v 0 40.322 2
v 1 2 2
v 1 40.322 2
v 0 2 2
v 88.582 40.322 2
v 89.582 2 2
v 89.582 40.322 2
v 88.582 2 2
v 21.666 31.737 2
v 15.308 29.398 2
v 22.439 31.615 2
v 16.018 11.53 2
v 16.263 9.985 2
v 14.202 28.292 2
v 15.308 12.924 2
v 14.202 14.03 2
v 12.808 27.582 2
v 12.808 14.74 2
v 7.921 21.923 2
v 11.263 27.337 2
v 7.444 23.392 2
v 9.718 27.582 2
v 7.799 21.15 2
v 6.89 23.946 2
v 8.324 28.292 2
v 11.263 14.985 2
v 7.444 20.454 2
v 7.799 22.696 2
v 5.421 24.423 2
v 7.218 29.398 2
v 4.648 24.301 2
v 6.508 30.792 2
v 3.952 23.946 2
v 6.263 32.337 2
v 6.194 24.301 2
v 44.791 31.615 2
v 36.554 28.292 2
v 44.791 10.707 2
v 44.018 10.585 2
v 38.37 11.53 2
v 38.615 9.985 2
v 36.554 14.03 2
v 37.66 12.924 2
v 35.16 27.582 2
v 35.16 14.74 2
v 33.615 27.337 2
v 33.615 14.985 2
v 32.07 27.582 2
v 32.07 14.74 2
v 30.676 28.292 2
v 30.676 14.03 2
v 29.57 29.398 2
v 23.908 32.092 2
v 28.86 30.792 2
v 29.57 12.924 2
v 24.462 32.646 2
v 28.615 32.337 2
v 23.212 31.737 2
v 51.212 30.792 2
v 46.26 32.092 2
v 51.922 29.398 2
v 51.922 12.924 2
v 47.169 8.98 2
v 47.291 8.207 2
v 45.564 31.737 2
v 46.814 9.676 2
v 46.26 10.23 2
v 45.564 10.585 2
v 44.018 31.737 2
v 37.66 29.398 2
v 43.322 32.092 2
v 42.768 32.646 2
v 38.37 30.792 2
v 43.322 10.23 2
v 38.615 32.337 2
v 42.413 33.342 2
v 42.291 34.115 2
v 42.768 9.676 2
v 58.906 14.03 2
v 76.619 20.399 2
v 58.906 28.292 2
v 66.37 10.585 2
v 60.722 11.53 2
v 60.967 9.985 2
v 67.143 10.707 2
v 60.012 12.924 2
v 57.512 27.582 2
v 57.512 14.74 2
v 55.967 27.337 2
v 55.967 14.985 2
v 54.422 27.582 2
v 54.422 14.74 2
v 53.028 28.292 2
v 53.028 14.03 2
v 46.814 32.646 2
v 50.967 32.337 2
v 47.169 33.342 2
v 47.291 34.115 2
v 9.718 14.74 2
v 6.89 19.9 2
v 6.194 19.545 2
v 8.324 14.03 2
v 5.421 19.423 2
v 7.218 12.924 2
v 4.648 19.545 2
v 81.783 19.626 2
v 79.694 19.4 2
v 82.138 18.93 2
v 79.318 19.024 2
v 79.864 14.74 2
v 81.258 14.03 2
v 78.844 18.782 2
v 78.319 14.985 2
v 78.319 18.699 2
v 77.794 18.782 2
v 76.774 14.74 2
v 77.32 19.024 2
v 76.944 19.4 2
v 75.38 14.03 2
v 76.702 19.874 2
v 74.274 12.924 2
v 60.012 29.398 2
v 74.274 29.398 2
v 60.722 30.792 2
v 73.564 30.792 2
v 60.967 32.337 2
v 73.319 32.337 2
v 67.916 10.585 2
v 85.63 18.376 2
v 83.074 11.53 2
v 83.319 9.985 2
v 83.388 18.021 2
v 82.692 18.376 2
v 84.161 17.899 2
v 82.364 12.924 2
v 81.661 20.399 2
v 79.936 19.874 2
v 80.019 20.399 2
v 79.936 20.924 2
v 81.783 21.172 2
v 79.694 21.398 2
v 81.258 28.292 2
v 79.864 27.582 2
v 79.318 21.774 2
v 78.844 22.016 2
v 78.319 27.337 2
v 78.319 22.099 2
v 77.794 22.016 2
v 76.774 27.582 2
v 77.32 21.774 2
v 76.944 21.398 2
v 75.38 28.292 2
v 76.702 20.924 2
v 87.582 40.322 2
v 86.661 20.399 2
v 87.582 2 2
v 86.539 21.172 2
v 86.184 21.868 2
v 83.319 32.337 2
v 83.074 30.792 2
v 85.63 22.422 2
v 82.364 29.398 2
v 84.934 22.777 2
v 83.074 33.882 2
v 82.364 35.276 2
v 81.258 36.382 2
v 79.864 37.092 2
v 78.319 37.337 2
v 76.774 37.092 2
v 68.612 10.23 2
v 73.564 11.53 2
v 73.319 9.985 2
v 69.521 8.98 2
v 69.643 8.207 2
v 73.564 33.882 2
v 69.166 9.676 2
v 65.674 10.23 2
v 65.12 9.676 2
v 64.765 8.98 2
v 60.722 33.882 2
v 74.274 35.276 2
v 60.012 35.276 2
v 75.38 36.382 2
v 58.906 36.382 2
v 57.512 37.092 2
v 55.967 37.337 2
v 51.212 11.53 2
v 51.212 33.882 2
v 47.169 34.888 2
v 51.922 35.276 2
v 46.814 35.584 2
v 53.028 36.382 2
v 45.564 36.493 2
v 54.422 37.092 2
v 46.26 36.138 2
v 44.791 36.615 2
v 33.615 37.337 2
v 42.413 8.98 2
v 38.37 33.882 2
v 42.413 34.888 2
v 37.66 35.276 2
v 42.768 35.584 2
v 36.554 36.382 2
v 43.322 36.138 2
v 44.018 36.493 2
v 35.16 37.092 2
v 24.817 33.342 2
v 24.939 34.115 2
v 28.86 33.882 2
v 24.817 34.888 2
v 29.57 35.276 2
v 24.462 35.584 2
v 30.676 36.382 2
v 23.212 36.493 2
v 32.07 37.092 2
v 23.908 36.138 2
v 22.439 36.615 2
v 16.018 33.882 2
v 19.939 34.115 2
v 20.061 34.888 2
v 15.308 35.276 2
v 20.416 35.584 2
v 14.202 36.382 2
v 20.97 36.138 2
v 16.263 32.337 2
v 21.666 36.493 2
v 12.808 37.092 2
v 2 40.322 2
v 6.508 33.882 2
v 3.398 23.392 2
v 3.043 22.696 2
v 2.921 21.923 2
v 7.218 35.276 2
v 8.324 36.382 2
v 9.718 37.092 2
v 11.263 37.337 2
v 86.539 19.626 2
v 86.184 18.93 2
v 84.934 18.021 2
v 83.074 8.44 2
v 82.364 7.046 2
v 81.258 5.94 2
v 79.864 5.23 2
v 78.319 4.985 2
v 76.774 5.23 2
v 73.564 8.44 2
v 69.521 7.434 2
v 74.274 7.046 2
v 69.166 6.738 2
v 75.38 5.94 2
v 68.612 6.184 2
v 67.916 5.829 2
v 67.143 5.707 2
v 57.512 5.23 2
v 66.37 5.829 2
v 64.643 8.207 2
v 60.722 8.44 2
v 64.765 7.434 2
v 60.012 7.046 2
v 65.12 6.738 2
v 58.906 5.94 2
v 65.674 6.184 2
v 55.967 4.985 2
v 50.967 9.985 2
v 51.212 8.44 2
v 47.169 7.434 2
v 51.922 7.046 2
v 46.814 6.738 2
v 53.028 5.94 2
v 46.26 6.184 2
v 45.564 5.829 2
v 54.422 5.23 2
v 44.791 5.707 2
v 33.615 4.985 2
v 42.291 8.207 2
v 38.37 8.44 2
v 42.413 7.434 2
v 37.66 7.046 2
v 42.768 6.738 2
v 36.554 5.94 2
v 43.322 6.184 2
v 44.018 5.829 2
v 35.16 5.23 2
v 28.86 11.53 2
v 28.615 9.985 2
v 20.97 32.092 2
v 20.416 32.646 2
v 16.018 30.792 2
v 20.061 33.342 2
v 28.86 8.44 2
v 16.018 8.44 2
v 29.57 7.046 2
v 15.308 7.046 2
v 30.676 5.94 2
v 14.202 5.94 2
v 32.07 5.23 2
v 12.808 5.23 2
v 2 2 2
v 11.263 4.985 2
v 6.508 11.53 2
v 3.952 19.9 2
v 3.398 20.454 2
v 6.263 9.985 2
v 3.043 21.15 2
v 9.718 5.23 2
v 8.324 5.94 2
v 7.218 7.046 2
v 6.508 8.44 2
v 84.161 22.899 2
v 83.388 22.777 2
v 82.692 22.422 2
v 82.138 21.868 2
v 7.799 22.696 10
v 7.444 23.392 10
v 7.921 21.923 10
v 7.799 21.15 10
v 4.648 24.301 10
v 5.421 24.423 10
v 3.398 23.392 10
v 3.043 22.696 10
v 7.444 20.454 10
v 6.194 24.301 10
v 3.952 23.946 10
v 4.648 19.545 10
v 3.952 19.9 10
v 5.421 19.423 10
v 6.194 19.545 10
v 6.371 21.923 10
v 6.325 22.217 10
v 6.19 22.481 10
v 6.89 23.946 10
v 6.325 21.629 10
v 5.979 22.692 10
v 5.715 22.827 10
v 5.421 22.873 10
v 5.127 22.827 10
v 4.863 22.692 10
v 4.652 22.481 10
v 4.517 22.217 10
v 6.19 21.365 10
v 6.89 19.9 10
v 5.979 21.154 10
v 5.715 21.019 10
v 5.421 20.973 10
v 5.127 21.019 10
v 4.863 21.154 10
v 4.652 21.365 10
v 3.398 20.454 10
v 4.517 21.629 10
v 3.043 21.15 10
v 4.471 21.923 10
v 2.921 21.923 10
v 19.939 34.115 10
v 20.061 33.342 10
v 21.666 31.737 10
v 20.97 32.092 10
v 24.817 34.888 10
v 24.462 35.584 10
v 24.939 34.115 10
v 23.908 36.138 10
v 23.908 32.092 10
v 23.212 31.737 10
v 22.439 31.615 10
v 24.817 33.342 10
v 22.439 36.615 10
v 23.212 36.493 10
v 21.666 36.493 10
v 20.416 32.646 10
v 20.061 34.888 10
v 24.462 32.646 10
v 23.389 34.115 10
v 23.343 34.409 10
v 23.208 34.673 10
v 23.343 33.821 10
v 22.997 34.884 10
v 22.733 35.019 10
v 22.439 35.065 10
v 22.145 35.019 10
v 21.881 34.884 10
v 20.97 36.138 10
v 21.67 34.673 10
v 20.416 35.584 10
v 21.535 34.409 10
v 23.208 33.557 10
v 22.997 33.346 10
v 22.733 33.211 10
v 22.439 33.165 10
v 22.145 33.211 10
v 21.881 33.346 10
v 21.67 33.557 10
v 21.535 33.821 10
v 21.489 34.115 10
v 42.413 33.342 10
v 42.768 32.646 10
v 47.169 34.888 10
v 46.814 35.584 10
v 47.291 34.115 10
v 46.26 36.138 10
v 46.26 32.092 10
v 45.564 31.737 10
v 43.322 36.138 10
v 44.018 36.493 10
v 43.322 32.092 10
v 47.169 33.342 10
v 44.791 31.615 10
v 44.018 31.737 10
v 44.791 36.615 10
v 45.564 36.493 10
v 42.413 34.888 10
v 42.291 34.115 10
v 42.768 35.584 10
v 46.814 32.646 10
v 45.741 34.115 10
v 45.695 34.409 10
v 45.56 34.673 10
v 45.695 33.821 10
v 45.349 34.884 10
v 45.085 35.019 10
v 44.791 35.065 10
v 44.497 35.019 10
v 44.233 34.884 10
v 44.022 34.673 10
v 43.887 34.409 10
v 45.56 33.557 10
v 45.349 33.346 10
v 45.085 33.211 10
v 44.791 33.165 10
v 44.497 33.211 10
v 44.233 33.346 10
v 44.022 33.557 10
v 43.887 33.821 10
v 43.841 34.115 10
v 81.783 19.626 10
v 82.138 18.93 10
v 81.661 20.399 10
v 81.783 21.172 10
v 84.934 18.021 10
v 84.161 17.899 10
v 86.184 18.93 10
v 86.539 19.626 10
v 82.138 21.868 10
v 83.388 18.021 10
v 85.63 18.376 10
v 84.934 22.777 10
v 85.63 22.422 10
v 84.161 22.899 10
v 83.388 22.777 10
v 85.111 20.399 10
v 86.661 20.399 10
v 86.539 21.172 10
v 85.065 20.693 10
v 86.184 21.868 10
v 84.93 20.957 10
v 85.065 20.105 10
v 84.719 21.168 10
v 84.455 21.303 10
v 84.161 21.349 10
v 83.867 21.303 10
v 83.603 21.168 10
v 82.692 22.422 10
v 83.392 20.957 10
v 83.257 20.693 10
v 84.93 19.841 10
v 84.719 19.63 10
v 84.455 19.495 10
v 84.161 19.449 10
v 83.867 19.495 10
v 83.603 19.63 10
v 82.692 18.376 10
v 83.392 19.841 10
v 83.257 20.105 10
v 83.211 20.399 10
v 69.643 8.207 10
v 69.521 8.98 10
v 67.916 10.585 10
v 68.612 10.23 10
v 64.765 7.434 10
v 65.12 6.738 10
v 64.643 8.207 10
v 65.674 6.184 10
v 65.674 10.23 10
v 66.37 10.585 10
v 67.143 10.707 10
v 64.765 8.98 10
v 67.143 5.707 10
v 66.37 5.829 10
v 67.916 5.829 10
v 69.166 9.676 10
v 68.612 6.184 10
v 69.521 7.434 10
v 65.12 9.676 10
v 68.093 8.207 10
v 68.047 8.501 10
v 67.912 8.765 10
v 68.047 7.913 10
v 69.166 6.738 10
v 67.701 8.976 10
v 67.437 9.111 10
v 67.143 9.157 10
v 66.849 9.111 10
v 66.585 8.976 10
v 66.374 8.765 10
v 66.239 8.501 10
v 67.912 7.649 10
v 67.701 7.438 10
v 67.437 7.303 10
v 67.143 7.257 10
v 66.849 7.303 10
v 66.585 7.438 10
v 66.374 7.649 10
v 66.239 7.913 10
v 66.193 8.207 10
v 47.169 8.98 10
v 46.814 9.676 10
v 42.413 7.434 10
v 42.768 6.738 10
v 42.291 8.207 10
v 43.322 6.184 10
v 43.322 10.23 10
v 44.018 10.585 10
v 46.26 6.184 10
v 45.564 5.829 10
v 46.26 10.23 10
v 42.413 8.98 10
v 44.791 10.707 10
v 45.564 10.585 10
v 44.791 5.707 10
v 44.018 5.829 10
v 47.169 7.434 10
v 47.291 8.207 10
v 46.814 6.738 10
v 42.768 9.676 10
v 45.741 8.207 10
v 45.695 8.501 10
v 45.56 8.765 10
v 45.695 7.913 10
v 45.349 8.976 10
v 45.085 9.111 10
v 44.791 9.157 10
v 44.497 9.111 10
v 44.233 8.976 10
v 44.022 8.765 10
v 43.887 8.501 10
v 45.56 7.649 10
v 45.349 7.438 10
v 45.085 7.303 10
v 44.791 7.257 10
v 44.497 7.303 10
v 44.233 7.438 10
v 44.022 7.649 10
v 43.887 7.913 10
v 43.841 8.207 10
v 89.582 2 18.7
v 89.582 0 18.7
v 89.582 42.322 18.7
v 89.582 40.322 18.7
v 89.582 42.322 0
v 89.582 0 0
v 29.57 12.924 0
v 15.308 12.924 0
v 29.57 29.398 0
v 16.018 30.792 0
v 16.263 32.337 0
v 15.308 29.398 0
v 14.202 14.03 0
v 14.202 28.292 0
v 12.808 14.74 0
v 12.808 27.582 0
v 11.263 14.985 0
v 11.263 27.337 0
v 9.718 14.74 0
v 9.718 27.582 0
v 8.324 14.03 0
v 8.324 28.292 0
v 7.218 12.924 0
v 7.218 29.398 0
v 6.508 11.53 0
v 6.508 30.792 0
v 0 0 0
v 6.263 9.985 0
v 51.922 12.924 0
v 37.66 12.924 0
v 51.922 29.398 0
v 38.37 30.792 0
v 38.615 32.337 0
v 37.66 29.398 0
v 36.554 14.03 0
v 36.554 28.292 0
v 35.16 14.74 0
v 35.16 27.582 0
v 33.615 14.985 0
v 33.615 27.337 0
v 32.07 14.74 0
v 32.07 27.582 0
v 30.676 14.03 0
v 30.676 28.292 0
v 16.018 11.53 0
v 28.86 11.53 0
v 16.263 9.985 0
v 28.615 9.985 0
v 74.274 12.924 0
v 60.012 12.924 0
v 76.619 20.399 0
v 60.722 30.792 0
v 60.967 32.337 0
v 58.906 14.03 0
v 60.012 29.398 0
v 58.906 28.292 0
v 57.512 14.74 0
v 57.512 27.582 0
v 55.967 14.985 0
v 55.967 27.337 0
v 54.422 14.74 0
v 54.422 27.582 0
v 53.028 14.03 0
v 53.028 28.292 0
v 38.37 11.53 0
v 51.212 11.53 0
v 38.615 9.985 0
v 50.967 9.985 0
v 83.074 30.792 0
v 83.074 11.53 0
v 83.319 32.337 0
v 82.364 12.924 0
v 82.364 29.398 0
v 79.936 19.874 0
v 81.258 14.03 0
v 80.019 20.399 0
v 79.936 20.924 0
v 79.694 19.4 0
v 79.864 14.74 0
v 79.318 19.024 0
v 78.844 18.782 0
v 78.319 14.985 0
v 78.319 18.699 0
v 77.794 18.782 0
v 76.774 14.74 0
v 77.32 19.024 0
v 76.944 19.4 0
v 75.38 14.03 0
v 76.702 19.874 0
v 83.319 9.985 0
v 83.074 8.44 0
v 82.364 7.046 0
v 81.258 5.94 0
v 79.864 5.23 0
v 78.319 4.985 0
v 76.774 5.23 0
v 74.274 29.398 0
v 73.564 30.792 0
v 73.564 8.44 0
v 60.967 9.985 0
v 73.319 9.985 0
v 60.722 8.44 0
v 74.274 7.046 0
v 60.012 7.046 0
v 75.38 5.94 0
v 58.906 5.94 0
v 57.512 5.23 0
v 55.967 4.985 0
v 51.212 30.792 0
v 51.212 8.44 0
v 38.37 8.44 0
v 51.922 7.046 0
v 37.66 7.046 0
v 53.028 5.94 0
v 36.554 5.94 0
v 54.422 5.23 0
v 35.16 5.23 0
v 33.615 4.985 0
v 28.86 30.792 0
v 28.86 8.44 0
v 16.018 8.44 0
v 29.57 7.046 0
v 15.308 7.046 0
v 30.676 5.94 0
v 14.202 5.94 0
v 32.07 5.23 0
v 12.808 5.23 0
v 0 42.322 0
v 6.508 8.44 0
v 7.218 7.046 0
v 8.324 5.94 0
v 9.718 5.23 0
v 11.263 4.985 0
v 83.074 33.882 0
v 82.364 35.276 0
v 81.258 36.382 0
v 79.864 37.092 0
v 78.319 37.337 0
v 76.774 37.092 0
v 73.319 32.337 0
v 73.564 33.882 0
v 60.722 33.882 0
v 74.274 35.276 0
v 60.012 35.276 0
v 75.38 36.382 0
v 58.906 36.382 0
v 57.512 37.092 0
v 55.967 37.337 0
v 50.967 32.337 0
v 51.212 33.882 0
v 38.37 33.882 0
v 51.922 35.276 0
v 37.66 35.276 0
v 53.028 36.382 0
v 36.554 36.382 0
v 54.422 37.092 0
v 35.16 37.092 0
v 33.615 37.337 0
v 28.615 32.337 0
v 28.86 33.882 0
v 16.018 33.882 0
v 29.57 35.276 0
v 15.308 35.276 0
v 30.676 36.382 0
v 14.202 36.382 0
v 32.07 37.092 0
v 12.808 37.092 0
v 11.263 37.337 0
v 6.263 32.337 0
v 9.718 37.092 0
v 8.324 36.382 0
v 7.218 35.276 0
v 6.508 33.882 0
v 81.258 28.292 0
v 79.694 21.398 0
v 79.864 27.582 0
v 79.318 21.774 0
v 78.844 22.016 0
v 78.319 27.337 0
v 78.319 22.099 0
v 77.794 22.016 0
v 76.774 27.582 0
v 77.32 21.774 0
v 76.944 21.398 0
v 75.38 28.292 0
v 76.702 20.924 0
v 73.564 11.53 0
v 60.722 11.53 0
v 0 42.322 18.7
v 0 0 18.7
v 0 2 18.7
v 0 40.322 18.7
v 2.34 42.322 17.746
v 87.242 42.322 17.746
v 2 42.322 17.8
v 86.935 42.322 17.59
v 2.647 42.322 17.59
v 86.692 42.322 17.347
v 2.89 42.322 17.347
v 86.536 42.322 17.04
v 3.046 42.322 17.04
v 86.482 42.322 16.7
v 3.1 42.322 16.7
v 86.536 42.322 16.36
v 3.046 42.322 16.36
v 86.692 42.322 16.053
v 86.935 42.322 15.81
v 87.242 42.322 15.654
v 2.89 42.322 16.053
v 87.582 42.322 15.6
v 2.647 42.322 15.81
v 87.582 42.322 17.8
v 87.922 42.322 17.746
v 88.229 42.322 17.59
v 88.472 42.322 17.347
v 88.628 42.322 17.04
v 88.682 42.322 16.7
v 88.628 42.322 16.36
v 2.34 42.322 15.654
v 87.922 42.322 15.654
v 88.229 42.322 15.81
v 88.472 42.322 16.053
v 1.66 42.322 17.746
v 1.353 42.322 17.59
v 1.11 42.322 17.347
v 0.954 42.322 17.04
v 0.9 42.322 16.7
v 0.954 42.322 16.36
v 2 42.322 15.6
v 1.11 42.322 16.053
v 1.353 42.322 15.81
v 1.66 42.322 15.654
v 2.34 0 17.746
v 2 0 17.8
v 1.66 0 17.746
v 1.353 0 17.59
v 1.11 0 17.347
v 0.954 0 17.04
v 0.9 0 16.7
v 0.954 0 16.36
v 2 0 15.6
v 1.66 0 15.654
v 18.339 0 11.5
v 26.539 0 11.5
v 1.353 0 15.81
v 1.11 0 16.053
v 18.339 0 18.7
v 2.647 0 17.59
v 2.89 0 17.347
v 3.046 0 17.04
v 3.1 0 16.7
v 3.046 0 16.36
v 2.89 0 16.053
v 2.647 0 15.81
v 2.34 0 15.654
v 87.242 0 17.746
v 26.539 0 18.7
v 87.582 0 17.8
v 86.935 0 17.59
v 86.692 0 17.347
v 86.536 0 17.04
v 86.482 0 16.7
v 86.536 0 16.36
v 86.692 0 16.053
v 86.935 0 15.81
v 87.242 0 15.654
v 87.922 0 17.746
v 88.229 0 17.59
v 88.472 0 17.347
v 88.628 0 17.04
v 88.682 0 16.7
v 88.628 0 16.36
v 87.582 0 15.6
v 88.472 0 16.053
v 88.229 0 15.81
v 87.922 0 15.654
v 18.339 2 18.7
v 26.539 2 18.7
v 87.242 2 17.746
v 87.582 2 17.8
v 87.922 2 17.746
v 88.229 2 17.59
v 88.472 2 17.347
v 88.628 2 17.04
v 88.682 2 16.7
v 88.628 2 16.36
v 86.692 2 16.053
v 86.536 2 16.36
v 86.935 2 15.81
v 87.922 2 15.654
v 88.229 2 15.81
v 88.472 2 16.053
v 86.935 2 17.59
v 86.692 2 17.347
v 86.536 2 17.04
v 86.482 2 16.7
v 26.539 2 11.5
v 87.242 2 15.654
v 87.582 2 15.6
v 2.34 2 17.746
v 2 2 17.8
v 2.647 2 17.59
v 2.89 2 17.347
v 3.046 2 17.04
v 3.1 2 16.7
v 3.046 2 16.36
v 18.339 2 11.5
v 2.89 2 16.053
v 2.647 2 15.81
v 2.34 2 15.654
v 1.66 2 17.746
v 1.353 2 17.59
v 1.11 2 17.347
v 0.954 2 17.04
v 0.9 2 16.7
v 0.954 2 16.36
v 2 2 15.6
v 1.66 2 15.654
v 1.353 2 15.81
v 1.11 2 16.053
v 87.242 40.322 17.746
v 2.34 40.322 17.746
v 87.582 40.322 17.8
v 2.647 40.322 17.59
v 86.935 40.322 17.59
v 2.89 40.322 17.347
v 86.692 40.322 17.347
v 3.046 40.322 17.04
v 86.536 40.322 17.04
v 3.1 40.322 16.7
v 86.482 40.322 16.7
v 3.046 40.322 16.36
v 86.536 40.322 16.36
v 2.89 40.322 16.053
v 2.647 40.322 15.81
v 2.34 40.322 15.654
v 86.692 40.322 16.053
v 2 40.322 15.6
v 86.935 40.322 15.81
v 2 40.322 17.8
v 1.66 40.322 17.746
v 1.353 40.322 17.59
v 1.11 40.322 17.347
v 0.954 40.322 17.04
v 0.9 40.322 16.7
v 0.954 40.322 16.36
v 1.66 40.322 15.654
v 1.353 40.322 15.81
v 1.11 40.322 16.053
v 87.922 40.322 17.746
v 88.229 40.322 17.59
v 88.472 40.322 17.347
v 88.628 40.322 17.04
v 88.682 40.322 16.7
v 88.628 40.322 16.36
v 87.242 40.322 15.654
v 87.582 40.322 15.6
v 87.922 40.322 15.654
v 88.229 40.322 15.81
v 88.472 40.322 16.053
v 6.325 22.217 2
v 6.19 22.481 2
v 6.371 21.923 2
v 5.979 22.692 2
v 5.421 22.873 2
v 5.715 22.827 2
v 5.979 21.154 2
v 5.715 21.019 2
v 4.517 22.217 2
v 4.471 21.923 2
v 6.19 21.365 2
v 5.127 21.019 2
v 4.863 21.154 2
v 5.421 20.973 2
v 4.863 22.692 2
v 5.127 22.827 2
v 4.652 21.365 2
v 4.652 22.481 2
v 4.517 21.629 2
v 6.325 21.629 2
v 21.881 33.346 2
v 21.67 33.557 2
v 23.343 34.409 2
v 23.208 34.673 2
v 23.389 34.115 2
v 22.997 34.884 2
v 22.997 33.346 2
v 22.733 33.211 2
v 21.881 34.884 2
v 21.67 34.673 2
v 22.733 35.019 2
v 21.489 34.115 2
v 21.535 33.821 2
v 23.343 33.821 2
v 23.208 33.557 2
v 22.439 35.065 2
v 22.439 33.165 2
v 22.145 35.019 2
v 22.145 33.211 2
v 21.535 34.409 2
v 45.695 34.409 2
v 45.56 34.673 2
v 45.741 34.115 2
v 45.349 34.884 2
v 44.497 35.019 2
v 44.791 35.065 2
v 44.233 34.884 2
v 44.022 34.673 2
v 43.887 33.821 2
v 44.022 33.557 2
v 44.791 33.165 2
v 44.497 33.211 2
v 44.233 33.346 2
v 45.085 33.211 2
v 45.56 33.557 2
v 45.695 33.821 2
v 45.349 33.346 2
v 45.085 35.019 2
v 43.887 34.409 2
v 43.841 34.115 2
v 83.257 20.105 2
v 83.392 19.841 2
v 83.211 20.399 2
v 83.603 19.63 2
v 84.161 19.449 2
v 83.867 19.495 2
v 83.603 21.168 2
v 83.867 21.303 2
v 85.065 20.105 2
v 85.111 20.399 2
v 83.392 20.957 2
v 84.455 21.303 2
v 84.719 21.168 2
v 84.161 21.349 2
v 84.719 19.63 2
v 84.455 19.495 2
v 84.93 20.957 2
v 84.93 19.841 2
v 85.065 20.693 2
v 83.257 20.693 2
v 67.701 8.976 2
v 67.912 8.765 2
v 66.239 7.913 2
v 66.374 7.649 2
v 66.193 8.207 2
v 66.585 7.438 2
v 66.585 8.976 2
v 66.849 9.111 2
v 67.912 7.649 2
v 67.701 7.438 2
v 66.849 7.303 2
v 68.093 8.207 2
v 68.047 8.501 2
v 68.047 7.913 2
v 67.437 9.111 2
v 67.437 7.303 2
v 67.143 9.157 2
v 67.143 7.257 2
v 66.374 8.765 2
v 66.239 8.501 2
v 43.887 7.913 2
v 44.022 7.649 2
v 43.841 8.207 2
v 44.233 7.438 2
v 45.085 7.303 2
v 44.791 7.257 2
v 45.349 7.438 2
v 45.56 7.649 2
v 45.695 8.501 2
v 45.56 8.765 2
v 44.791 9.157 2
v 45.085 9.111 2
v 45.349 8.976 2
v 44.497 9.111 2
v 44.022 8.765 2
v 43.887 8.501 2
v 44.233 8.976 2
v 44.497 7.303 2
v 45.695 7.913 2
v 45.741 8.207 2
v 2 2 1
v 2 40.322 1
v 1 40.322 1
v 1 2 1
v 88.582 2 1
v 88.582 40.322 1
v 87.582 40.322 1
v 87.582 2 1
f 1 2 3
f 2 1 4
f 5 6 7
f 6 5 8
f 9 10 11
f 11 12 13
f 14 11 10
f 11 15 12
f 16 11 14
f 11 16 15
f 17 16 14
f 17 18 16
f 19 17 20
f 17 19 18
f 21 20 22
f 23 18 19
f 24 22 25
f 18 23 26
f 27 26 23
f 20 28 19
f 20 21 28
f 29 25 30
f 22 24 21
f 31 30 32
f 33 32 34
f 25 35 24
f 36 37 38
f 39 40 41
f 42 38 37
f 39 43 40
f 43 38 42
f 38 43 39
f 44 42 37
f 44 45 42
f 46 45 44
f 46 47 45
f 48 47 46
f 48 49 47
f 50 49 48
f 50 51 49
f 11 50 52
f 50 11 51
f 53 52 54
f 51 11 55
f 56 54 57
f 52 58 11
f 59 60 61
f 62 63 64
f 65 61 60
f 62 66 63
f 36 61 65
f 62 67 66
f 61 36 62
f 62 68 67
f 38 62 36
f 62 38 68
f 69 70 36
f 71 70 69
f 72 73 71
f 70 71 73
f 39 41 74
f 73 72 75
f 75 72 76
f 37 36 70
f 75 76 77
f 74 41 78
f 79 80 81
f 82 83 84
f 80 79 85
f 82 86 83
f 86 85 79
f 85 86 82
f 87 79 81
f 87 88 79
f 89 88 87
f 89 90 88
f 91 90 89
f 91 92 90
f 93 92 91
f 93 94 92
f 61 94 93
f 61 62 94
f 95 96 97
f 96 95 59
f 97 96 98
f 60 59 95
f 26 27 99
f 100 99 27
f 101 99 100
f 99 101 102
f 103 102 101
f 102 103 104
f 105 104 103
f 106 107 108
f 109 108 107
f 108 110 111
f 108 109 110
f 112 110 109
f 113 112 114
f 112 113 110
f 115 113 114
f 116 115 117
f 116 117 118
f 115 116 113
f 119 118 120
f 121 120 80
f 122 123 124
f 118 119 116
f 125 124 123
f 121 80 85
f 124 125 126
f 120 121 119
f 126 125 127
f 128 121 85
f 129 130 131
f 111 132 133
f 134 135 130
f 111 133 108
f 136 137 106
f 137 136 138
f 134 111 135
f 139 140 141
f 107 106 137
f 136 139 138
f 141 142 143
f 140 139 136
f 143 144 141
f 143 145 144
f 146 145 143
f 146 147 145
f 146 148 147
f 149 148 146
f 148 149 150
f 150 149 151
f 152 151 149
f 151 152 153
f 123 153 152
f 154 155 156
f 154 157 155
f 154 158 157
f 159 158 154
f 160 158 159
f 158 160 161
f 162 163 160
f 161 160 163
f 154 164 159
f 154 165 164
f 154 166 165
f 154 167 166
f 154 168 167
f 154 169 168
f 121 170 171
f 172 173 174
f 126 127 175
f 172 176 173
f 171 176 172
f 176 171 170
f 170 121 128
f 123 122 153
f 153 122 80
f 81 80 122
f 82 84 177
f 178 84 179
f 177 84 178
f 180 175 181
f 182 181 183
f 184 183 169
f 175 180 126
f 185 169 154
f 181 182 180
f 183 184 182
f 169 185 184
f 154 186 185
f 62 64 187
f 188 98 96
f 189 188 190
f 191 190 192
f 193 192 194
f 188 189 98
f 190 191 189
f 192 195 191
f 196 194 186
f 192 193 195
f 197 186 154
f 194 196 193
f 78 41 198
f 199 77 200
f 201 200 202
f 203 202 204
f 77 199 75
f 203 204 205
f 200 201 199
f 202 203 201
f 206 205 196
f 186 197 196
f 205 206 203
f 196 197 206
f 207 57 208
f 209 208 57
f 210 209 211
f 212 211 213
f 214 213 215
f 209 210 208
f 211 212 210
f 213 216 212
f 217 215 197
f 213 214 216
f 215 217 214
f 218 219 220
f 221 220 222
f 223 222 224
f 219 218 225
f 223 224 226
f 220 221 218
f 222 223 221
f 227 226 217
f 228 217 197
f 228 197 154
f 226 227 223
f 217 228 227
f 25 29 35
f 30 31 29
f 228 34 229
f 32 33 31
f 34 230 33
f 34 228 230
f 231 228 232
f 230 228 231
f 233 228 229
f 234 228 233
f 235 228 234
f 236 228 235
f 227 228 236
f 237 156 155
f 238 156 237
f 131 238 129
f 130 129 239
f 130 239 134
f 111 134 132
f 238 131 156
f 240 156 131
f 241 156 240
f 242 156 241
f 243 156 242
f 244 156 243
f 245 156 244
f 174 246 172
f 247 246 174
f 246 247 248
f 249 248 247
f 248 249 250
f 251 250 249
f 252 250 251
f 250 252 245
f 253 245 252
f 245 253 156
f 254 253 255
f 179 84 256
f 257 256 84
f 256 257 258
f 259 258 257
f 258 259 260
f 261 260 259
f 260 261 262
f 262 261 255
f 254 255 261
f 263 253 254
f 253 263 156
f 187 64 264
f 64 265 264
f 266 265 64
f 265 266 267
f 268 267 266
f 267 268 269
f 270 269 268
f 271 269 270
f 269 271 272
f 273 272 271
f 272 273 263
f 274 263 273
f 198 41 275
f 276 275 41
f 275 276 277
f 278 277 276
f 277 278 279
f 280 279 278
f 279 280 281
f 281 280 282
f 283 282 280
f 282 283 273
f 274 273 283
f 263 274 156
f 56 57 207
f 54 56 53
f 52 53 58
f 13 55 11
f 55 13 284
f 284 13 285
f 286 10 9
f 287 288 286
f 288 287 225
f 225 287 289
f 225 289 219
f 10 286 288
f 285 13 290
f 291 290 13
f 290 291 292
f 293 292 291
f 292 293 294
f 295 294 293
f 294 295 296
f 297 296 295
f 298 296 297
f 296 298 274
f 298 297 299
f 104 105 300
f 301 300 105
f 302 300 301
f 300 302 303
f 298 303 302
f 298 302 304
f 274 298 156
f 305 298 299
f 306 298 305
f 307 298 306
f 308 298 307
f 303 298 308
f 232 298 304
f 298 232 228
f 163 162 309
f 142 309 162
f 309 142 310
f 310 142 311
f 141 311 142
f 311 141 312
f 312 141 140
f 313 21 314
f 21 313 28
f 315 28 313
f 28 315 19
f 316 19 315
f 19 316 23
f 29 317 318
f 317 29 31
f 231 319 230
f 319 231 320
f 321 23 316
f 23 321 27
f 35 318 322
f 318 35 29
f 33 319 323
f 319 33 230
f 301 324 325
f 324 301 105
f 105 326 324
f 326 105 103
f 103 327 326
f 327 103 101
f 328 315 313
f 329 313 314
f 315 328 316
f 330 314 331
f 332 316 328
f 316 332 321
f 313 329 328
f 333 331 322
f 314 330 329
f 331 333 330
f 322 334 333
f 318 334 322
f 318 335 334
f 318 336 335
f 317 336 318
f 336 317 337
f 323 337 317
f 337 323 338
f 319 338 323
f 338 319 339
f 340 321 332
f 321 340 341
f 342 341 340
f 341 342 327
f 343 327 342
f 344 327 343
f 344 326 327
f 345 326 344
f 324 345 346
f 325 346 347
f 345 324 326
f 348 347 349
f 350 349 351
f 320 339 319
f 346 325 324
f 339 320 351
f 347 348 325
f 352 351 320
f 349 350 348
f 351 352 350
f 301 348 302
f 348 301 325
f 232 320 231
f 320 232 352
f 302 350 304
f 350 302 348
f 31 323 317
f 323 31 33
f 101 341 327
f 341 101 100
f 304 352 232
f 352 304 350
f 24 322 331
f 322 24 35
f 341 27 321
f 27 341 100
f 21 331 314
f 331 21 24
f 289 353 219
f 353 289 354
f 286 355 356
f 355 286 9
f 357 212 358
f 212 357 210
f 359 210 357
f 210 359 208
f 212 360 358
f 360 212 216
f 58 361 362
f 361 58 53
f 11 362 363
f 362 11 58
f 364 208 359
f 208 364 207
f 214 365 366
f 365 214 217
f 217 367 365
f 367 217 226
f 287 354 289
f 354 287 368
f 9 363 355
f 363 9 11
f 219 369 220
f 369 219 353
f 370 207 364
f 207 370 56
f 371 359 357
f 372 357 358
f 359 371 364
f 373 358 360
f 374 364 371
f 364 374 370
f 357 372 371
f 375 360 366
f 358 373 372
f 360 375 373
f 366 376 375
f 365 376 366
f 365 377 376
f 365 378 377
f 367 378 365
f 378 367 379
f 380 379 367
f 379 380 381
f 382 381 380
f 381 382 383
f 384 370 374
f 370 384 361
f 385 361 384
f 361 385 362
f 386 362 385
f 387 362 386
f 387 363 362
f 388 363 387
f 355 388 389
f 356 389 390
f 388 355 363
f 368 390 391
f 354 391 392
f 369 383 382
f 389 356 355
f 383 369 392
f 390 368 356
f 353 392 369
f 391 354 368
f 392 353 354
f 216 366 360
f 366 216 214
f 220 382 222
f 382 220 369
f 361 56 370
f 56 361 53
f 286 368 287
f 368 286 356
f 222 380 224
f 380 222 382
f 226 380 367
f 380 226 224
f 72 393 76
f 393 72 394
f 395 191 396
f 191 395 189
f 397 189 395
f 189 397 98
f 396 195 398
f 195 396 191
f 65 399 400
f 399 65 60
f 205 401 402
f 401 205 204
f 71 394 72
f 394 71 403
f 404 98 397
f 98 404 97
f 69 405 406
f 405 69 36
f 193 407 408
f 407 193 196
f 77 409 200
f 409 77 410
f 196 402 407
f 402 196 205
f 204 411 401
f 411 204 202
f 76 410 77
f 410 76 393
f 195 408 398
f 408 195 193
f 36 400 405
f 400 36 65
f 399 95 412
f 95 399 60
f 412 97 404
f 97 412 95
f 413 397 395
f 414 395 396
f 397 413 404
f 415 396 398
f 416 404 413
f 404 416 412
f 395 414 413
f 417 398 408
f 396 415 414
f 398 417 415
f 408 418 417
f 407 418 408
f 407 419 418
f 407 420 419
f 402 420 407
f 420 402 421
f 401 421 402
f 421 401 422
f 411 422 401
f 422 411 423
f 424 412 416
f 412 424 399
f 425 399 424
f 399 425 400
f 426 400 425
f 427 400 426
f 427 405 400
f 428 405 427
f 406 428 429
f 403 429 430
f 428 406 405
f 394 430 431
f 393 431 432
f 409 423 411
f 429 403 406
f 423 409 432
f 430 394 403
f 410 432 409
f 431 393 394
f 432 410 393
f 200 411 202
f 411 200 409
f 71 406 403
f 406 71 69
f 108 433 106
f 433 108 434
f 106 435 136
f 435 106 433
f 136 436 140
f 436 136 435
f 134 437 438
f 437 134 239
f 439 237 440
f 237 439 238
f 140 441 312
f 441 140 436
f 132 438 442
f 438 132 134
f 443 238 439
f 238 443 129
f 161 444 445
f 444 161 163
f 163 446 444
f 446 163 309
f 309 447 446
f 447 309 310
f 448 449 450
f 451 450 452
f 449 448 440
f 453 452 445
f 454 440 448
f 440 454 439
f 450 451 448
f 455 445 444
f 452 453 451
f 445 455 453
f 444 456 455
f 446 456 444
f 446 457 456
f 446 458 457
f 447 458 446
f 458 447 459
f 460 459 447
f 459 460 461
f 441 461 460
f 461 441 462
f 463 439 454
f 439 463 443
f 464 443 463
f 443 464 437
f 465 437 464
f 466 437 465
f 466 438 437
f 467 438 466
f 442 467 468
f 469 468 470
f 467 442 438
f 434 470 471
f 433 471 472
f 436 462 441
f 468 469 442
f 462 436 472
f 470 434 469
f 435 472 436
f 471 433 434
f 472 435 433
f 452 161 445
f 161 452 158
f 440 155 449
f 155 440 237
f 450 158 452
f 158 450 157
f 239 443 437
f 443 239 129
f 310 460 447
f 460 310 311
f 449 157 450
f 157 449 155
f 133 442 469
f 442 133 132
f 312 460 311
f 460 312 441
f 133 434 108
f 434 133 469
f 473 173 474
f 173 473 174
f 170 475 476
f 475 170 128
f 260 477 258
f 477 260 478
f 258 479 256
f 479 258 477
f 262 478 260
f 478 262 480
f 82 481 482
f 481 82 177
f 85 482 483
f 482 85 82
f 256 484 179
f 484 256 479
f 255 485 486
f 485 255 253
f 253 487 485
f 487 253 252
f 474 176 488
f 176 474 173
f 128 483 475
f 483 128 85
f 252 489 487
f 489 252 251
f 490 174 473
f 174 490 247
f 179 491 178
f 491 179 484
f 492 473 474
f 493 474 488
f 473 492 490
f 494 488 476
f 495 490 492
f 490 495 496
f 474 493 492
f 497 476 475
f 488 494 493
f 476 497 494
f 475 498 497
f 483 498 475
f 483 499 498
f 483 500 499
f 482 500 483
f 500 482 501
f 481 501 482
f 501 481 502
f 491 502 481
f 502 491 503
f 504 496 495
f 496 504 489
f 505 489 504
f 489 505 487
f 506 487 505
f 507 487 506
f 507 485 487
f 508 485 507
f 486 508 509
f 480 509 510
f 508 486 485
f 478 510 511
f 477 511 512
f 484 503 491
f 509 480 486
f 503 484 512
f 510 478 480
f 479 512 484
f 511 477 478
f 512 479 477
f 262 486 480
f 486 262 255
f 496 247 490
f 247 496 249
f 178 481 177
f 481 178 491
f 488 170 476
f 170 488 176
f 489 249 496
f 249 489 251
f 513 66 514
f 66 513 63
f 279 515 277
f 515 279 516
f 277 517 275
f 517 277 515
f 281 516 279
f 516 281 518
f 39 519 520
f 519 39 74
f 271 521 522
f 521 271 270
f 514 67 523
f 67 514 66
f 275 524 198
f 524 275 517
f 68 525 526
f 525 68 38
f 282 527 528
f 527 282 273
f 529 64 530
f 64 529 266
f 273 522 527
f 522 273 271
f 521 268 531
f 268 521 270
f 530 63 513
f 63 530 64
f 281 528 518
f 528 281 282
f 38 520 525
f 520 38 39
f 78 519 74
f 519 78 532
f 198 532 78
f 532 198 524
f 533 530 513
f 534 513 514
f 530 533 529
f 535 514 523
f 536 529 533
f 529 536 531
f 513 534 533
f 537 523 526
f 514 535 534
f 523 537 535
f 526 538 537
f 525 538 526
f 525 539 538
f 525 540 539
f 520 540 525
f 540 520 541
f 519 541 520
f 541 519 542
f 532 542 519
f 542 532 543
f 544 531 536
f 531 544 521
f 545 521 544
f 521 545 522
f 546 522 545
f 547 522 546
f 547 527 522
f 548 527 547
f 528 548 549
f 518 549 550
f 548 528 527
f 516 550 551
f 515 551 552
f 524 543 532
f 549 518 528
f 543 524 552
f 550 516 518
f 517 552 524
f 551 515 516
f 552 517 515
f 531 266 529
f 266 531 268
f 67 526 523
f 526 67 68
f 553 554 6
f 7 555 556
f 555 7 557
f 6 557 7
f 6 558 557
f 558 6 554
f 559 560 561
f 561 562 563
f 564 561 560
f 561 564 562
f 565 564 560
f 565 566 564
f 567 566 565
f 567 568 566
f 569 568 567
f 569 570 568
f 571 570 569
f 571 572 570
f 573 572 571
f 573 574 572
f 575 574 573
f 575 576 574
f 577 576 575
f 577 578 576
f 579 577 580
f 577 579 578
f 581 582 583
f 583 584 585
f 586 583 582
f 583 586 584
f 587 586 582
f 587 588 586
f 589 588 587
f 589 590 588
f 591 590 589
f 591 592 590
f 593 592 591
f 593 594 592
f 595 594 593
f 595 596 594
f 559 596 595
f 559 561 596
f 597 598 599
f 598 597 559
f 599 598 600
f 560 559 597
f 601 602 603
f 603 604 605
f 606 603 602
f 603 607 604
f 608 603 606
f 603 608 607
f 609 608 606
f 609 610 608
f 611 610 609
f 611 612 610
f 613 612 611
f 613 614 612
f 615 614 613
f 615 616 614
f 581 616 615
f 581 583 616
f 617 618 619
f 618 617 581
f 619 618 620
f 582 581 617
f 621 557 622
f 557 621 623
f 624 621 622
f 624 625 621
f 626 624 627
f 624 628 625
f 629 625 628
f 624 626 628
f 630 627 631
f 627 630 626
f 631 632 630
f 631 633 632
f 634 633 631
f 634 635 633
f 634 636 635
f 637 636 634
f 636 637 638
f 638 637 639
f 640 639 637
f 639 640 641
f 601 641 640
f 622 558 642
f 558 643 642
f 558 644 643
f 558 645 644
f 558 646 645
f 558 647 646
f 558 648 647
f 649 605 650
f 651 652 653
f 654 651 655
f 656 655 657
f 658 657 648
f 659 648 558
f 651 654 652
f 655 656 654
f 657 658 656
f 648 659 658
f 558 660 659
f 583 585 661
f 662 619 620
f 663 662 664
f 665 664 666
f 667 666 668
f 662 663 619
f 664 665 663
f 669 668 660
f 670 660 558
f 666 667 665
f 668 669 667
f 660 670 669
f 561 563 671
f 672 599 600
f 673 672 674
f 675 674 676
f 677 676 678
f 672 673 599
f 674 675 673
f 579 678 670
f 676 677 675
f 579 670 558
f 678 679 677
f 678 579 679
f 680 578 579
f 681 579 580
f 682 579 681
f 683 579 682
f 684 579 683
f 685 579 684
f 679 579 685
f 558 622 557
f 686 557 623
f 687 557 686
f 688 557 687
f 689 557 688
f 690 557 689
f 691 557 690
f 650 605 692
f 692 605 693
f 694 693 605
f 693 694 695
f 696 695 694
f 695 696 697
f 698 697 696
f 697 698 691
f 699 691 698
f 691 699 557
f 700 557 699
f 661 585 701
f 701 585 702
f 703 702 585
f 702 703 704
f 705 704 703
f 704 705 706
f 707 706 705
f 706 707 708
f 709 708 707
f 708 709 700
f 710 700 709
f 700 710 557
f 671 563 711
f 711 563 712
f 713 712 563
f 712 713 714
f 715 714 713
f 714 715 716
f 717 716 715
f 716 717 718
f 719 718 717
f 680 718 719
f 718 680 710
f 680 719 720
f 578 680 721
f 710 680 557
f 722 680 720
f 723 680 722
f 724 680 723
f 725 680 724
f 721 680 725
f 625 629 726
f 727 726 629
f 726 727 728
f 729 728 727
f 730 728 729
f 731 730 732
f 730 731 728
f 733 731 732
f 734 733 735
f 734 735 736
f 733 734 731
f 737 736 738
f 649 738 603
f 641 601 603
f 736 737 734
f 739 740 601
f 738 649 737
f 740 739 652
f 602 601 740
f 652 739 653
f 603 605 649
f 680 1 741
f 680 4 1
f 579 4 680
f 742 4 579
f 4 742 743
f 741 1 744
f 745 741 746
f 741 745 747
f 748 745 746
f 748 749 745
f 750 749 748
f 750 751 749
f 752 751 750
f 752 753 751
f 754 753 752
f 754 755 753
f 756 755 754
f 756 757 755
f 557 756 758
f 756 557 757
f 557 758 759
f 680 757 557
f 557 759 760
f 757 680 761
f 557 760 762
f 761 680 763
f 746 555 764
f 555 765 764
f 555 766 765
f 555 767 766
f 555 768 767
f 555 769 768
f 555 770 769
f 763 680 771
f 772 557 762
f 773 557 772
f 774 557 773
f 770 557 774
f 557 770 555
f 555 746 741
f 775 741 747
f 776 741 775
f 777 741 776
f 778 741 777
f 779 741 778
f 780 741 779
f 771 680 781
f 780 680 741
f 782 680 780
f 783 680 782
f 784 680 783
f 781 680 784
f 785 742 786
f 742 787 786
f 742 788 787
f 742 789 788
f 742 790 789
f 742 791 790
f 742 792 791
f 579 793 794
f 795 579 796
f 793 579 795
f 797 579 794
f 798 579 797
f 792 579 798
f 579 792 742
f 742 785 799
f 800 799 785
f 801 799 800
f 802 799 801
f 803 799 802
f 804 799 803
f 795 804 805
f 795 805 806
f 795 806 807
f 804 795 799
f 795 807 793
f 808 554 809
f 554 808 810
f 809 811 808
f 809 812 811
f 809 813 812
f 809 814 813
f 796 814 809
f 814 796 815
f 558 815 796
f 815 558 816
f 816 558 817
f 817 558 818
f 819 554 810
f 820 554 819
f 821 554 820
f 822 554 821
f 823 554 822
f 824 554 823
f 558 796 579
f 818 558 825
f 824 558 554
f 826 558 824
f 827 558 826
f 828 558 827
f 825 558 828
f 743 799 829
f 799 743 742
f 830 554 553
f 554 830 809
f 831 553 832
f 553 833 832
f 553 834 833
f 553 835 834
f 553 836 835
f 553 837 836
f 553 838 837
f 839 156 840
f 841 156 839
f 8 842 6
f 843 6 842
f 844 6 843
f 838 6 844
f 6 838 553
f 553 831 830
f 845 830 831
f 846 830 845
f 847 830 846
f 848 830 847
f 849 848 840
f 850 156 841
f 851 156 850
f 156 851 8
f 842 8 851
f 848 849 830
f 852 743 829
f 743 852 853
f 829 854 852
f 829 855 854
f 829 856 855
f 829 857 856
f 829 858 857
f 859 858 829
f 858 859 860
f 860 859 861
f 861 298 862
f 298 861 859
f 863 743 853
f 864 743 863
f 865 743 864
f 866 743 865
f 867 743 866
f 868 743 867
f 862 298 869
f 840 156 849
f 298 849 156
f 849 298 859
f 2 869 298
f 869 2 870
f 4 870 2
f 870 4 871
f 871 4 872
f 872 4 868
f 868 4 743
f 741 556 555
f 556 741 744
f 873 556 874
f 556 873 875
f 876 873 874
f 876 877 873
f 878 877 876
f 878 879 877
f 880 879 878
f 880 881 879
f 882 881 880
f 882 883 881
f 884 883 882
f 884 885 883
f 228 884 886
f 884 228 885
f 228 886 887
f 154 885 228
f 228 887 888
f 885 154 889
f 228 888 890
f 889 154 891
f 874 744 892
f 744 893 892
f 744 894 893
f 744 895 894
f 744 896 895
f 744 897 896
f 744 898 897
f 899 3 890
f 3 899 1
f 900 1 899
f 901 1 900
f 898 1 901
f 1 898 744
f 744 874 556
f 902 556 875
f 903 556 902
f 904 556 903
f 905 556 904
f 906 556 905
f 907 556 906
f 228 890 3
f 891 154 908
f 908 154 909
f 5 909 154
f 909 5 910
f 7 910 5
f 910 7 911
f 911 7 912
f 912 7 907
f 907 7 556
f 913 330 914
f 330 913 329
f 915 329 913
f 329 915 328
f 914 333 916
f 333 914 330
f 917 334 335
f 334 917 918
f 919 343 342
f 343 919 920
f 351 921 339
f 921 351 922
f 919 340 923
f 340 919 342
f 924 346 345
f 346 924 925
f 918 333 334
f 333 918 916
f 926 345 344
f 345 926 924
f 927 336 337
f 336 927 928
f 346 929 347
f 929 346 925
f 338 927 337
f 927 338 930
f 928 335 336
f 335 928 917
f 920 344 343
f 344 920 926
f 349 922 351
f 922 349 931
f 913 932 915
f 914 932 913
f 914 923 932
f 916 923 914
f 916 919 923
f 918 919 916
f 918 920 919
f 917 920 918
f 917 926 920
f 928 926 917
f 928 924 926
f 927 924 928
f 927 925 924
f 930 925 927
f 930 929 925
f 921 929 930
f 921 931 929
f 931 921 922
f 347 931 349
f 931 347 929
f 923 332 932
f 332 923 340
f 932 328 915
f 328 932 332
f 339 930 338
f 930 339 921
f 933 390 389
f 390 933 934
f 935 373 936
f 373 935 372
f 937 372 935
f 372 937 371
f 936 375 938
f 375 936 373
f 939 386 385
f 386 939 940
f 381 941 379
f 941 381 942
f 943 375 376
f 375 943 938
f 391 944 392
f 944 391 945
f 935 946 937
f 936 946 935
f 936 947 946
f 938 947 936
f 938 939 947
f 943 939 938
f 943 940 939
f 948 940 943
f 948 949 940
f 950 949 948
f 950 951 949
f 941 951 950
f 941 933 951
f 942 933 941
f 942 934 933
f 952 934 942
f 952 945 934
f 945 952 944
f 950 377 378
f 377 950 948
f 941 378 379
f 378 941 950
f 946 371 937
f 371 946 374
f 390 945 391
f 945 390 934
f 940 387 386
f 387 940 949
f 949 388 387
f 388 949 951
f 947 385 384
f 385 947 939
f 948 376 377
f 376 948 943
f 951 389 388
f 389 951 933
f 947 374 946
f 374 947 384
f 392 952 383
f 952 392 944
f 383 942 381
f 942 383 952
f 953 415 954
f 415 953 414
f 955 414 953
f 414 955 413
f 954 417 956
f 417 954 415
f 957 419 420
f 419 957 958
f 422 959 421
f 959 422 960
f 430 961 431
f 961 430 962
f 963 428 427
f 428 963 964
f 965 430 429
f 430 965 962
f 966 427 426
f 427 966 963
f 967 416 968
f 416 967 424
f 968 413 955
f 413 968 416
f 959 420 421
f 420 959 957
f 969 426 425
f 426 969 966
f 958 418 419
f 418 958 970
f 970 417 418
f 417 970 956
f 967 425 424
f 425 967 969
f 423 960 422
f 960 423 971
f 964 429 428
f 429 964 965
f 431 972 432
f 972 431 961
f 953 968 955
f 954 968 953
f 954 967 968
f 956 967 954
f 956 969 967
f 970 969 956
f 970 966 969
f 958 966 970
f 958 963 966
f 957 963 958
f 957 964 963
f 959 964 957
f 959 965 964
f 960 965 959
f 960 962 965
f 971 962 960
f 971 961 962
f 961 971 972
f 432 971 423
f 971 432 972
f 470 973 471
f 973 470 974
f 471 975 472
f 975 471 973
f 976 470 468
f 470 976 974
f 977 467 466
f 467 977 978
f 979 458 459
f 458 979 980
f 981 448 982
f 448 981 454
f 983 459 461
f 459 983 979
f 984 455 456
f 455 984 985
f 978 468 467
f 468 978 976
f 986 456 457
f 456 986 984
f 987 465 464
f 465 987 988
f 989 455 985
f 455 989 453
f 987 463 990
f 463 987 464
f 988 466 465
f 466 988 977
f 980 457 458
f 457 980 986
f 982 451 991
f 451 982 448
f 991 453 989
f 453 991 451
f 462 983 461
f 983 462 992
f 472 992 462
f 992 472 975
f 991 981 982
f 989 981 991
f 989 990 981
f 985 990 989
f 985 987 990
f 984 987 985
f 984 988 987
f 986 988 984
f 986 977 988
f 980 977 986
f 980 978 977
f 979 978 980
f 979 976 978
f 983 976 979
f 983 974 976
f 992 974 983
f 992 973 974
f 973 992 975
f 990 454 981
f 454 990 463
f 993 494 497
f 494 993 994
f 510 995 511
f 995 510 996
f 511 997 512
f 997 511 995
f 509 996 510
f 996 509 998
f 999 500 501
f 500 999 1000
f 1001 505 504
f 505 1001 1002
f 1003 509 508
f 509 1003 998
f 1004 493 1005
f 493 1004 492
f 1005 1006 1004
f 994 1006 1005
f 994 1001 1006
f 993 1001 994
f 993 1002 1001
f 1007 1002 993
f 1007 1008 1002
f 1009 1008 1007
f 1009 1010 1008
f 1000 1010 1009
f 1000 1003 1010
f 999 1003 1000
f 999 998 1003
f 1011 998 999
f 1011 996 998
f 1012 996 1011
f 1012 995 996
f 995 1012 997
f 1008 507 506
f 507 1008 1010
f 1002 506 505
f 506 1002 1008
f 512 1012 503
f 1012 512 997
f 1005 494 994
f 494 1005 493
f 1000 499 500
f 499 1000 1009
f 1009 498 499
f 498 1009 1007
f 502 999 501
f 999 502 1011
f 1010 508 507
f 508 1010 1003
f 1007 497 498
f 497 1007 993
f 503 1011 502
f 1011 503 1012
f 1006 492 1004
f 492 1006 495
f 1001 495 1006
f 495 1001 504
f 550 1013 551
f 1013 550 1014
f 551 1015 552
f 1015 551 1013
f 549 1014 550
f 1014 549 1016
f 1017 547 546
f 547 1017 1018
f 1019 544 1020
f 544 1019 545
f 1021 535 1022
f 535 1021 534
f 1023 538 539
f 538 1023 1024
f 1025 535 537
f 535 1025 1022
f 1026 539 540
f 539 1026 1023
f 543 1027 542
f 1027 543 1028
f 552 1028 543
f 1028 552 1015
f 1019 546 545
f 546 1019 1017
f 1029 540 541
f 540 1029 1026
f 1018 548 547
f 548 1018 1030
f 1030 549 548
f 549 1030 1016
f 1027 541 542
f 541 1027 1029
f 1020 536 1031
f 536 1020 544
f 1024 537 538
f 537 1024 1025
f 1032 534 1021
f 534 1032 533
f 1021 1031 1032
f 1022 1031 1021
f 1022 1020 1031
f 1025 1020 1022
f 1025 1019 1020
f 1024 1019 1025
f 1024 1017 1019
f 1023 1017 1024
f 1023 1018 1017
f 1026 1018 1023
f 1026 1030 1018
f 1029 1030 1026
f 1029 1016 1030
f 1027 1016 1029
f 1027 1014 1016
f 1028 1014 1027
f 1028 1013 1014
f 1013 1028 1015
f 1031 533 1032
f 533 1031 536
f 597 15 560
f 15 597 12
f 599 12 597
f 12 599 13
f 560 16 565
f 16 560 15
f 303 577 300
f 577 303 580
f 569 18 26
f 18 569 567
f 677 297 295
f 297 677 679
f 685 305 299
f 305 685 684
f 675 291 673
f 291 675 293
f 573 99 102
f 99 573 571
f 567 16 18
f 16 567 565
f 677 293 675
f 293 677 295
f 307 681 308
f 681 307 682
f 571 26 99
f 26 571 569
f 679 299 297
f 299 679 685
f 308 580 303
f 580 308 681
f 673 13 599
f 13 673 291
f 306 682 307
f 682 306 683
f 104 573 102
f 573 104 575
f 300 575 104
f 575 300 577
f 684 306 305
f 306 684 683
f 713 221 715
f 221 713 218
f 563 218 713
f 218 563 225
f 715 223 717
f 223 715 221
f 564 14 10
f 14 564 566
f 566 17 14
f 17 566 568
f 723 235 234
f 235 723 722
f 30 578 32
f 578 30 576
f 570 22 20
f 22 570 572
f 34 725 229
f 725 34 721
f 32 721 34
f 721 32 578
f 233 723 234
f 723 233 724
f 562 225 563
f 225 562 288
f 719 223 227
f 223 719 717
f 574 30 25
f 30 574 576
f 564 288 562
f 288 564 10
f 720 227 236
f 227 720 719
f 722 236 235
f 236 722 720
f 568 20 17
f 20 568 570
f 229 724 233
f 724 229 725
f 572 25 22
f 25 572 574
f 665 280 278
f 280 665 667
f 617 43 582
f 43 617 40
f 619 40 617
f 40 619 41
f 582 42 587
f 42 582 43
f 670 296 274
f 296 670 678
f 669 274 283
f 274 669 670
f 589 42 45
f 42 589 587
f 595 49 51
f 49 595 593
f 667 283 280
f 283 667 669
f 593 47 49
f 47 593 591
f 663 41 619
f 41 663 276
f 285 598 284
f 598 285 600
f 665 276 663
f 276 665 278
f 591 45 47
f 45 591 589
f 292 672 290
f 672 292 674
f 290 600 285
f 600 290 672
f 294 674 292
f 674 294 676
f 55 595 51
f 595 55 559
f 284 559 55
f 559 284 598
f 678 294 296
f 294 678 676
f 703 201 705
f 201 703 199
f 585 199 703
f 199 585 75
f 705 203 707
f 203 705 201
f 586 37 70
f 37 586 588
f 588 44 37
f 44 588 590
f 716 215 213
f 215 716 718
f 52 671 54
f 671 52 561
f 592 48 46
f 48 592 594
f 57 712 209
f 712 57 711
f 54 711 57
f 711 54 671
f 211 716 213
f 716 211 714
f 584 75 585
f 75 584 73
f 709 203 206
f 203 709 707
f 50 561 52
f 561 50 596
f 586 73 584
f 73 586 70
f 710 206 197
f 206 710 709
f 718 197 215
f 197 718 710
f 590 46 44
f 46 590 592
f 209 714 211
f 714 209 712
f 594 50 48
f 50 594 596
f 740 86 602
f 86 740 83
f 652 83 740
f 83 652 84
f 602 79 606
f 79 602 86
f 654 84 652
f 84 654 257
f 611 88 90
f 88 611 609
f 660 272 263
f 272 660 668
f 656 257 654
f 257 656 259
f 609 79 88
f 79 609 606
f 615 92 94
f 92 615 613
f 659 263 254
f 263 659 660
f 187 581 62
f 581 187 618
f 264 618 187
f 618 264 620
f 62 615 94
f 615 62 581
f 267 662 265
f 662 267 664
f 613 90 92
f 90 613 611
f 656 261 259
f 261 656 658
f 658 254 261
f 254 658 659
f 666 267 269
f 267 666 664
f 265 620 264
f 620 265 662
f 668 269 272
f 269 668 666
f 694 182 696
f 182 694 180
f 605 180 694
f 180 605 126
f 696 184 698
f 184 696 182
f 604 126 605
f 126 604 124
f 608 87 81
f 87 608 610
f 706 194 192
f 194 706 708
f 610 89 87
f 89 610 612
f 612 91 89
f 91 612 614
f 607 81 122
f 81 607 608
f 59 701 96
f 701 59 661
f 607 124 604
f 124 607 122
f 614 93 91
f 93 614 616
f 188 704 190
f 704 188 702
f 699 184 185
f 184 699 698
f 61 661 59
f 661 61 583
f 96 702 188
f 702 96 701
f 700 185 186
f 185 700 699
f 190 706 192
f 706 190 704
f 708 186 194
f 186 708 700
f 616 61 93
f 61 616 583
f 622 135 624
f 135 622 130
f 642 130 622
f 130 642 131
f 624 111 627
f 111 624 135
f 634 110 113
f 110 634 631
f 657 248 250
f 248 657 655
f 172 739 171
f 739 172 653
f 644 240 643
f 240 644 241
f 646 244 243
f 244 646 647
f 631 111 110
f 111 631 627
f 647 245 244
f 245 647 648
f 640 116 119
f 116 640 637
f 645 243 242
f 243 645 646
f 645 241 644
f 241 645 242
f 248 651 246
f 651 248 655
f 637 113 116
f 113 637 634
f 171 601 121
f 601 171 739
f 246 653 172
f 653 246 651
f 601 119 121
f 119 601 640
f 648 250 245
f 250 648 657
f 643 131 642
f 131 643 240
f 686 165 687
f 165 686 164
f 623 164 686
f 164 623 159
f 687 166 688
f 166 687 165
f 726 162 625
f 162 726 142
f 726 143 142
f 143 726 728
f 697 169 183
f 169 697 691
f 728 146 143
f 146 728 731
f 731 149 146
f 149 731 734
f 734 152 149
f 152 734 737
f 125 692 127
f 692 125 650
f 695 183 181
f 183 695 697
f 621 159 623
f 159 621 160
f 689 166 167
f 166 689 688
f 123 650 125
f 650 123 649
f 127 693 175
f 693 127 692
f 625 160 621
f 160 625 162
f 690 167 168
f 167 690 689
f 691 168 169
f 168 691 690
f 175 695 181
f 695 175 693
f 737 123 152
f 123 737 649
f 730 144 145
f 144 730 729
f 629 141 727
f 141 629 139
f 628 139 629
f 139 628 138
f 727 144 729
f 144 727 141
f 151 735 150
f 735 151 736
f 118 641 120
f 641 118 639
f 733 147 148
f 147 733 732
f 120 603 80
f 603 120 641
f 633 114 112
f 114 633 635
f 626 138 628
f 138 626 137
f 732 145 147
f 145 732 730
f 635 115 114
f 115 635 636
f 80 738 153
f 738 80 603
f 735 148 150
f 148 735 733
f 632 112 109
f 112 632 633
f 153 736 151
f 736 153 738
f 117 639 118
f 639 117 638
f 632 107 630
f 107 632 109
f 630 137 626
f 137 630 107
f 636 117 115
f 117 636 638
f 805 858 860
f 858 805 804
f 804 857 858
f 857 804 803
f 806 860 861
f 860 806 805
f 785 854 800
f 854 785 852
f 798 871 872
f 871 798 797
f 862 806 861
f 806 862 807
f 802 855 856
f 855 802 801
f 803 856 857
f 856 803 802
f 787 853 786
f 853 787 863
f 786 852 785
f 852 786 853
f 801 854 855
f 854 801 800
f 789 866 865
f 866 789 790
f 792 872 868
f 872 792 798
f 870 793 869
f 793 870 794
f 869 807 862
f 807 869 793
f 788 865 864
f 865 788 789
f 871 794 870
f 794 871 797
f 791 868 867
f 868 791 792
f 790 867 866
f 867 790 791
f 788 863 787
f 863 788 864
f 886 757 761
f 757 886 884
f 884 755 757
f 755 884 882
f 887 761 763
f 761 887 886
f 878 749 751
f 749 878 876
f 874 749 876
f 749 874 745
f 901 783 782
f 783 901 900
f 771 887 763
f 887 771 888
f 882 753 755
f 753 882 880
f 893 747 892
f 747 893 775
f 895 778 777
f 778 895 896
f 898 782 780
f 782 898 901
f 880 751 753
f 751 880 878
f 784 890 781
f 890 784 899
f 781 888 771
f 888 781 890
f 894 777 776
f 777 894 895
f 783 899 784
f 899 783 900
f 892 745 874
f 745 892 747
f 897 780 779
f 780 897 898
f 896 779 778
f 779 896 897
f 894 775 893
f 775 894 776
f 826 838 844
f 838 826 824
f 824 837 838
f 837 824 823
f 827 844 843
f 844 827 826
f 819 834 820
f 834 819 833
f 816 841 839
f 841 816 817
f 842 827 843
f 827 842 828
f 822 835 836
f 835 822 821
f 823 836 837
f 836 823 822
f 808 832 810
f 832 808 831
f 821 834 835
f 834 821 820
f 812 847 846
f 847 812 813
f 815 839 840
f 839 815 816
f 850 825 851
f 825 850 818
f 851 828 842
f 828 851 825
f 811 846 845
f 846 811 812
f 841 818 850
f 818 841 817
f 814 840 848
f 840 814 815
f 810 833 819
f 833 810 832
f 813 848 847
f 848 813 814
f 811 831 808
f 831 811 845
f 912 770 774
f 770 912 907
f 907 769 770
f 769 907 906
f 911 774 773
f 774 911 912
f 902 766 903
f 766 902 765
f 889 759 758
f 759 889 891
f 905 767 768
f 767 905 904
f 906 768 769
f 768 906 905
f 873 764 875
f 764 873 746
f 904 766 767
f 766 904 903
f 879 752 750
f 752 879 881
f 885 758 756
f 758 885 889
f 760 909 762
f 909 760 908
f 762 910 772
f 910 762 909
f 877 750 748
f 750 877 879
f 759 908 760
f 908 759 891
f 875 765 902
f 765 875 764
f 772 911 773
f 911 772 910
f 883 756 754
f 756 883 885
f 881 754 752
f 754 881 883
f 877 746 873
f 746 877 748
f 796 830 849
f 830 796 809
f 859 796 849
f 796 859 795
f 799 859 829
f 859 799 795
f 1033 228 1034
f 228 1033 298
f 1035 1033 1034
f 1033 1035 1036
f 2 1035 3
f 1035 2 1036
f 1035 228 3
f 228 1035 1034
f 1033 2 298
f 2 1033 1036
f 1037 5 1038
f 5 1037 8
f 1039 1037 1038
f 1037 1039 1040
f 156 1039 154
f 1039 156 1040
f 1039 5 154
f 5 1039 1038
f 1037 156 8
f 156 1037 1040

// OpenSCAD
// file: settings.scad
/*
 * SPDX-FileCopyrightText: 2022 Rafael G. Martins <rafael@rafaelmartins.eng.br>
 * SPDX-License-Identifier: CERN-OHL-S-2.0
 */

thickness = 2;

pcb_width = 84.582;
pcb_length = 36.322;
pcb_screw1_x = 2.921;
pcb_screw1_y = pcb_length - 5.207 - 12.192;
pcb_screw2_x = pcb_screw1_x + 17.018;
pcb_screw2_y = pcb_screw1_y + 12.192;
pcb_screw3_x = pcb_screw2_x + 22.352;
pcb_screw3_y = pcb_screw2_y;
pcb_screw_base_height = 8;
pcb_screw_base_d = 5;
pcb_screw_d = 2;
pcb_padding_x = thickness + 0.5;
pcb_padding_y = thickness + 1;

screw_d = 2;
screw_h = 7;

usb_height = 4.4;
usb_width = 8.2;
usb_distance_x = pcb_padding_x + 19.939 - usb_width / 2;
usb_distance_z = thickness + pcb_screw_base_height + 1.6 - 0.1;

button0_x = 8.763;
button0_y = 6.985;
button_d = 10;
button_distance = 22.352;

led_width = 1.8;
led_length = 1;
led_margin = 1;
led_x = button0_x + 3 * button_distance;
led_y = 5.207 + 12.192;
led_d = 3.4;

gap = 0;

width = pcb_width + 2 * pcb_padding_x;
length = pcb_length + 2 * pcb_padding_y;
height = usb_distance_z + usb_height + 0.8 + thickness;
// file: ../lib/screw-base.scad
// SPDX-FileCopyrightText: 2022-2024 Rafael G. Martins <rafael@rafaelmartins.eng.br>
// SPDX-License-Identifier: CERN-OHL-S-2.0

function screw_base_dim(screw_d) = screw_d + 2;
function screw_base_height(screw_h) = screw_h + 1;


module screw_base_add(screw_d, screw_h) {
    cube([screw_base_dim(screw_d), screw_base_dim(screw_d), screw_base_height(screw_h)]);
}


module screw_base_sub(screw_d, screw_h) {
    translate([screw_base_dim(screw_d) / 2, screw_base_dim(screw_d) / 2, 0])
        cylinder(screw_h, d=screw_d - 0.2, $fn=20);
}
// main file
/*
 * SPDX-FileCopyrightText: 2022 Rafael G. Martins <rafael@rafaelmartins.eng.br>
 * SPDX-License-Identifier: CERN-OHL-S-2.0
 */

include <../lib/screw-base.scad>
include <settings.scad>

difference() {
    union() {
        cube([width, length, thickness]);
        cube([width, thickness, height]);
        translate([0, length - thickness, 0])
            cube([width, thickness, height]);

        for (i=[0:1]) {
            translate([pcb_padding_x + i * pcb_width, pcb_padding_y + i * pcb_length, thickness]) {
                rotate([0, 0, i * 180]) {
                    translate([pcb_screw1_x, pcb_screw1_y, 0])
                        cylinder(pcb_screw_base_height, d=pcb_screw_base_d, $fn=20);
                    translate([pcb_screw2_x, pcb_screw2_y, 0])
                        cylinder(pcb_screw_base_height, d=pcb_screw_base_d, $fn=20);
                    translate([pcb_screw3_x, pcb_screw3_y, 0])
                        cylinder(pcb_screw_base_height, d=pcb_screw_base_d, $fn=20);
                }
            }
        }
    }

    translate([pcb_padding_x, pcb_padding_y, 0]) {
        for (i=[0:1]) {
            translate([i * pcb_width, i * pcb_length, thickness]) {
                rotate([0, 0, i * 180]) {
                    translate([pcb_screw1_x, pcb_screw1_y, 0])
                        cylinder(pcb_screw_base_height, d=pcb_screw_d - 0.1, $fn=20);
                    translate([pcb_screw2_x, pcb_screw2_y, 0])
                        cylinder(pcb_screw_base_height, d=pcb_screw_d - 0.1, $fn=20);
                    translate([pcb_screw3_x, pcb_screw3_y, 0])
                        cylinder(pcb_screw_base_height, d=pcb_screw_d - 0.1, $fn=20);
                }
            }
        }

        for(i=[0:3])
            for(j=[0:1])
                translate([button0_x + i * button_distance, button0_y + j * button_distance, 0])
                    cylinder(thickness, d=button_d, $fn=20);

        translate([led_x, led_y, 0])
            cylinder(thickness, d=led_d, $fn=20);
    }

    translate([usb_distance_x, 0, usb_distance_z])
        cube([usb_width, thickness, height - usb_distance_z]);

    for (i=[0:1])
        for (j=[0:1])
            translate([screw_base_dim(screw_d) / 2 + i * (width - screw_base_dim(screw_d)),
                       j * (length - thickness),
                       height - screw_base_dim(screw_d) / 2])
                rotate([-90, 0, 0])
                    cylinder(thickness, d=screw_d * 1.1, $fn=20);

    translate([(thickness - gap) / 2, thickness, thickness / 2])
        cube([thickness / 2 + gap, length - 2 * thickness, thickness / 2]);
    translate([width - thickness - gap / 2, thickness, thickness / 2])
        cube([thickness / 2 + gap, length - 2 * thickness, thickness / 2]);
}
